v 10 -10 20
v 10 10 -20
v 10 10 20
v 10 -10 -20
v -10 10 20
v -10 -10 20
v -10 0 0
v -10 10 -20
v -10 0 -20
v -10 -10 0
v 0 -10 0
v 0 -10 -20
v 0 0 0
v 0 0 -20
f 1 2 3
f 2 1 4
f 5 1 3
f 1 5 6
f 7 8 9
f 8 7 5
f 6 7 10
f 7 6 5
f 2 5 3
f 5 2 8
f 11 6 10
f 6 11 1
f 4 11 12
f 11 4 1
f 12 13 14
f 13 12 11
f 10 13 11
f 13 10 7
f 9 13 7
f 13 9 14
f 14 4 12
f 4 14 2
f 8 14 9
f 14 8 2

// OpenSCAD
// Define the central block
module central_block() {
    difference() {
        cube([20, 20, 20], center = true);
        union() {
            translate([-10, -5, -10]) cube([20, 10, 20], center = true);
            translate([-5, -10, -10]) cube([10, 20, 20], center = true);
        }
    }
}

// Define the upper block
module upper_block() {
    difference() {
        cube([20, 20, 10], center = true);
        translate([-10, -5, -10]) cube([20, 10, 10], center = true);
    }
}

// Define the lower block
module lower_block() {
    difference() {
        cube([20, 20, 10], center = true);
        translate([-10, -5, 0]) cube([20, 10, 10], center = true);
    }
}

// Assemble the components
module assembly() {
    translate([0, 0, 15]) upper_block(); // Position the upper block
    central_block(); // Position the central block
    translate([0, 0, -15]) lower_block(); // Position the lower block
}

// Render the assembly
assembly();
